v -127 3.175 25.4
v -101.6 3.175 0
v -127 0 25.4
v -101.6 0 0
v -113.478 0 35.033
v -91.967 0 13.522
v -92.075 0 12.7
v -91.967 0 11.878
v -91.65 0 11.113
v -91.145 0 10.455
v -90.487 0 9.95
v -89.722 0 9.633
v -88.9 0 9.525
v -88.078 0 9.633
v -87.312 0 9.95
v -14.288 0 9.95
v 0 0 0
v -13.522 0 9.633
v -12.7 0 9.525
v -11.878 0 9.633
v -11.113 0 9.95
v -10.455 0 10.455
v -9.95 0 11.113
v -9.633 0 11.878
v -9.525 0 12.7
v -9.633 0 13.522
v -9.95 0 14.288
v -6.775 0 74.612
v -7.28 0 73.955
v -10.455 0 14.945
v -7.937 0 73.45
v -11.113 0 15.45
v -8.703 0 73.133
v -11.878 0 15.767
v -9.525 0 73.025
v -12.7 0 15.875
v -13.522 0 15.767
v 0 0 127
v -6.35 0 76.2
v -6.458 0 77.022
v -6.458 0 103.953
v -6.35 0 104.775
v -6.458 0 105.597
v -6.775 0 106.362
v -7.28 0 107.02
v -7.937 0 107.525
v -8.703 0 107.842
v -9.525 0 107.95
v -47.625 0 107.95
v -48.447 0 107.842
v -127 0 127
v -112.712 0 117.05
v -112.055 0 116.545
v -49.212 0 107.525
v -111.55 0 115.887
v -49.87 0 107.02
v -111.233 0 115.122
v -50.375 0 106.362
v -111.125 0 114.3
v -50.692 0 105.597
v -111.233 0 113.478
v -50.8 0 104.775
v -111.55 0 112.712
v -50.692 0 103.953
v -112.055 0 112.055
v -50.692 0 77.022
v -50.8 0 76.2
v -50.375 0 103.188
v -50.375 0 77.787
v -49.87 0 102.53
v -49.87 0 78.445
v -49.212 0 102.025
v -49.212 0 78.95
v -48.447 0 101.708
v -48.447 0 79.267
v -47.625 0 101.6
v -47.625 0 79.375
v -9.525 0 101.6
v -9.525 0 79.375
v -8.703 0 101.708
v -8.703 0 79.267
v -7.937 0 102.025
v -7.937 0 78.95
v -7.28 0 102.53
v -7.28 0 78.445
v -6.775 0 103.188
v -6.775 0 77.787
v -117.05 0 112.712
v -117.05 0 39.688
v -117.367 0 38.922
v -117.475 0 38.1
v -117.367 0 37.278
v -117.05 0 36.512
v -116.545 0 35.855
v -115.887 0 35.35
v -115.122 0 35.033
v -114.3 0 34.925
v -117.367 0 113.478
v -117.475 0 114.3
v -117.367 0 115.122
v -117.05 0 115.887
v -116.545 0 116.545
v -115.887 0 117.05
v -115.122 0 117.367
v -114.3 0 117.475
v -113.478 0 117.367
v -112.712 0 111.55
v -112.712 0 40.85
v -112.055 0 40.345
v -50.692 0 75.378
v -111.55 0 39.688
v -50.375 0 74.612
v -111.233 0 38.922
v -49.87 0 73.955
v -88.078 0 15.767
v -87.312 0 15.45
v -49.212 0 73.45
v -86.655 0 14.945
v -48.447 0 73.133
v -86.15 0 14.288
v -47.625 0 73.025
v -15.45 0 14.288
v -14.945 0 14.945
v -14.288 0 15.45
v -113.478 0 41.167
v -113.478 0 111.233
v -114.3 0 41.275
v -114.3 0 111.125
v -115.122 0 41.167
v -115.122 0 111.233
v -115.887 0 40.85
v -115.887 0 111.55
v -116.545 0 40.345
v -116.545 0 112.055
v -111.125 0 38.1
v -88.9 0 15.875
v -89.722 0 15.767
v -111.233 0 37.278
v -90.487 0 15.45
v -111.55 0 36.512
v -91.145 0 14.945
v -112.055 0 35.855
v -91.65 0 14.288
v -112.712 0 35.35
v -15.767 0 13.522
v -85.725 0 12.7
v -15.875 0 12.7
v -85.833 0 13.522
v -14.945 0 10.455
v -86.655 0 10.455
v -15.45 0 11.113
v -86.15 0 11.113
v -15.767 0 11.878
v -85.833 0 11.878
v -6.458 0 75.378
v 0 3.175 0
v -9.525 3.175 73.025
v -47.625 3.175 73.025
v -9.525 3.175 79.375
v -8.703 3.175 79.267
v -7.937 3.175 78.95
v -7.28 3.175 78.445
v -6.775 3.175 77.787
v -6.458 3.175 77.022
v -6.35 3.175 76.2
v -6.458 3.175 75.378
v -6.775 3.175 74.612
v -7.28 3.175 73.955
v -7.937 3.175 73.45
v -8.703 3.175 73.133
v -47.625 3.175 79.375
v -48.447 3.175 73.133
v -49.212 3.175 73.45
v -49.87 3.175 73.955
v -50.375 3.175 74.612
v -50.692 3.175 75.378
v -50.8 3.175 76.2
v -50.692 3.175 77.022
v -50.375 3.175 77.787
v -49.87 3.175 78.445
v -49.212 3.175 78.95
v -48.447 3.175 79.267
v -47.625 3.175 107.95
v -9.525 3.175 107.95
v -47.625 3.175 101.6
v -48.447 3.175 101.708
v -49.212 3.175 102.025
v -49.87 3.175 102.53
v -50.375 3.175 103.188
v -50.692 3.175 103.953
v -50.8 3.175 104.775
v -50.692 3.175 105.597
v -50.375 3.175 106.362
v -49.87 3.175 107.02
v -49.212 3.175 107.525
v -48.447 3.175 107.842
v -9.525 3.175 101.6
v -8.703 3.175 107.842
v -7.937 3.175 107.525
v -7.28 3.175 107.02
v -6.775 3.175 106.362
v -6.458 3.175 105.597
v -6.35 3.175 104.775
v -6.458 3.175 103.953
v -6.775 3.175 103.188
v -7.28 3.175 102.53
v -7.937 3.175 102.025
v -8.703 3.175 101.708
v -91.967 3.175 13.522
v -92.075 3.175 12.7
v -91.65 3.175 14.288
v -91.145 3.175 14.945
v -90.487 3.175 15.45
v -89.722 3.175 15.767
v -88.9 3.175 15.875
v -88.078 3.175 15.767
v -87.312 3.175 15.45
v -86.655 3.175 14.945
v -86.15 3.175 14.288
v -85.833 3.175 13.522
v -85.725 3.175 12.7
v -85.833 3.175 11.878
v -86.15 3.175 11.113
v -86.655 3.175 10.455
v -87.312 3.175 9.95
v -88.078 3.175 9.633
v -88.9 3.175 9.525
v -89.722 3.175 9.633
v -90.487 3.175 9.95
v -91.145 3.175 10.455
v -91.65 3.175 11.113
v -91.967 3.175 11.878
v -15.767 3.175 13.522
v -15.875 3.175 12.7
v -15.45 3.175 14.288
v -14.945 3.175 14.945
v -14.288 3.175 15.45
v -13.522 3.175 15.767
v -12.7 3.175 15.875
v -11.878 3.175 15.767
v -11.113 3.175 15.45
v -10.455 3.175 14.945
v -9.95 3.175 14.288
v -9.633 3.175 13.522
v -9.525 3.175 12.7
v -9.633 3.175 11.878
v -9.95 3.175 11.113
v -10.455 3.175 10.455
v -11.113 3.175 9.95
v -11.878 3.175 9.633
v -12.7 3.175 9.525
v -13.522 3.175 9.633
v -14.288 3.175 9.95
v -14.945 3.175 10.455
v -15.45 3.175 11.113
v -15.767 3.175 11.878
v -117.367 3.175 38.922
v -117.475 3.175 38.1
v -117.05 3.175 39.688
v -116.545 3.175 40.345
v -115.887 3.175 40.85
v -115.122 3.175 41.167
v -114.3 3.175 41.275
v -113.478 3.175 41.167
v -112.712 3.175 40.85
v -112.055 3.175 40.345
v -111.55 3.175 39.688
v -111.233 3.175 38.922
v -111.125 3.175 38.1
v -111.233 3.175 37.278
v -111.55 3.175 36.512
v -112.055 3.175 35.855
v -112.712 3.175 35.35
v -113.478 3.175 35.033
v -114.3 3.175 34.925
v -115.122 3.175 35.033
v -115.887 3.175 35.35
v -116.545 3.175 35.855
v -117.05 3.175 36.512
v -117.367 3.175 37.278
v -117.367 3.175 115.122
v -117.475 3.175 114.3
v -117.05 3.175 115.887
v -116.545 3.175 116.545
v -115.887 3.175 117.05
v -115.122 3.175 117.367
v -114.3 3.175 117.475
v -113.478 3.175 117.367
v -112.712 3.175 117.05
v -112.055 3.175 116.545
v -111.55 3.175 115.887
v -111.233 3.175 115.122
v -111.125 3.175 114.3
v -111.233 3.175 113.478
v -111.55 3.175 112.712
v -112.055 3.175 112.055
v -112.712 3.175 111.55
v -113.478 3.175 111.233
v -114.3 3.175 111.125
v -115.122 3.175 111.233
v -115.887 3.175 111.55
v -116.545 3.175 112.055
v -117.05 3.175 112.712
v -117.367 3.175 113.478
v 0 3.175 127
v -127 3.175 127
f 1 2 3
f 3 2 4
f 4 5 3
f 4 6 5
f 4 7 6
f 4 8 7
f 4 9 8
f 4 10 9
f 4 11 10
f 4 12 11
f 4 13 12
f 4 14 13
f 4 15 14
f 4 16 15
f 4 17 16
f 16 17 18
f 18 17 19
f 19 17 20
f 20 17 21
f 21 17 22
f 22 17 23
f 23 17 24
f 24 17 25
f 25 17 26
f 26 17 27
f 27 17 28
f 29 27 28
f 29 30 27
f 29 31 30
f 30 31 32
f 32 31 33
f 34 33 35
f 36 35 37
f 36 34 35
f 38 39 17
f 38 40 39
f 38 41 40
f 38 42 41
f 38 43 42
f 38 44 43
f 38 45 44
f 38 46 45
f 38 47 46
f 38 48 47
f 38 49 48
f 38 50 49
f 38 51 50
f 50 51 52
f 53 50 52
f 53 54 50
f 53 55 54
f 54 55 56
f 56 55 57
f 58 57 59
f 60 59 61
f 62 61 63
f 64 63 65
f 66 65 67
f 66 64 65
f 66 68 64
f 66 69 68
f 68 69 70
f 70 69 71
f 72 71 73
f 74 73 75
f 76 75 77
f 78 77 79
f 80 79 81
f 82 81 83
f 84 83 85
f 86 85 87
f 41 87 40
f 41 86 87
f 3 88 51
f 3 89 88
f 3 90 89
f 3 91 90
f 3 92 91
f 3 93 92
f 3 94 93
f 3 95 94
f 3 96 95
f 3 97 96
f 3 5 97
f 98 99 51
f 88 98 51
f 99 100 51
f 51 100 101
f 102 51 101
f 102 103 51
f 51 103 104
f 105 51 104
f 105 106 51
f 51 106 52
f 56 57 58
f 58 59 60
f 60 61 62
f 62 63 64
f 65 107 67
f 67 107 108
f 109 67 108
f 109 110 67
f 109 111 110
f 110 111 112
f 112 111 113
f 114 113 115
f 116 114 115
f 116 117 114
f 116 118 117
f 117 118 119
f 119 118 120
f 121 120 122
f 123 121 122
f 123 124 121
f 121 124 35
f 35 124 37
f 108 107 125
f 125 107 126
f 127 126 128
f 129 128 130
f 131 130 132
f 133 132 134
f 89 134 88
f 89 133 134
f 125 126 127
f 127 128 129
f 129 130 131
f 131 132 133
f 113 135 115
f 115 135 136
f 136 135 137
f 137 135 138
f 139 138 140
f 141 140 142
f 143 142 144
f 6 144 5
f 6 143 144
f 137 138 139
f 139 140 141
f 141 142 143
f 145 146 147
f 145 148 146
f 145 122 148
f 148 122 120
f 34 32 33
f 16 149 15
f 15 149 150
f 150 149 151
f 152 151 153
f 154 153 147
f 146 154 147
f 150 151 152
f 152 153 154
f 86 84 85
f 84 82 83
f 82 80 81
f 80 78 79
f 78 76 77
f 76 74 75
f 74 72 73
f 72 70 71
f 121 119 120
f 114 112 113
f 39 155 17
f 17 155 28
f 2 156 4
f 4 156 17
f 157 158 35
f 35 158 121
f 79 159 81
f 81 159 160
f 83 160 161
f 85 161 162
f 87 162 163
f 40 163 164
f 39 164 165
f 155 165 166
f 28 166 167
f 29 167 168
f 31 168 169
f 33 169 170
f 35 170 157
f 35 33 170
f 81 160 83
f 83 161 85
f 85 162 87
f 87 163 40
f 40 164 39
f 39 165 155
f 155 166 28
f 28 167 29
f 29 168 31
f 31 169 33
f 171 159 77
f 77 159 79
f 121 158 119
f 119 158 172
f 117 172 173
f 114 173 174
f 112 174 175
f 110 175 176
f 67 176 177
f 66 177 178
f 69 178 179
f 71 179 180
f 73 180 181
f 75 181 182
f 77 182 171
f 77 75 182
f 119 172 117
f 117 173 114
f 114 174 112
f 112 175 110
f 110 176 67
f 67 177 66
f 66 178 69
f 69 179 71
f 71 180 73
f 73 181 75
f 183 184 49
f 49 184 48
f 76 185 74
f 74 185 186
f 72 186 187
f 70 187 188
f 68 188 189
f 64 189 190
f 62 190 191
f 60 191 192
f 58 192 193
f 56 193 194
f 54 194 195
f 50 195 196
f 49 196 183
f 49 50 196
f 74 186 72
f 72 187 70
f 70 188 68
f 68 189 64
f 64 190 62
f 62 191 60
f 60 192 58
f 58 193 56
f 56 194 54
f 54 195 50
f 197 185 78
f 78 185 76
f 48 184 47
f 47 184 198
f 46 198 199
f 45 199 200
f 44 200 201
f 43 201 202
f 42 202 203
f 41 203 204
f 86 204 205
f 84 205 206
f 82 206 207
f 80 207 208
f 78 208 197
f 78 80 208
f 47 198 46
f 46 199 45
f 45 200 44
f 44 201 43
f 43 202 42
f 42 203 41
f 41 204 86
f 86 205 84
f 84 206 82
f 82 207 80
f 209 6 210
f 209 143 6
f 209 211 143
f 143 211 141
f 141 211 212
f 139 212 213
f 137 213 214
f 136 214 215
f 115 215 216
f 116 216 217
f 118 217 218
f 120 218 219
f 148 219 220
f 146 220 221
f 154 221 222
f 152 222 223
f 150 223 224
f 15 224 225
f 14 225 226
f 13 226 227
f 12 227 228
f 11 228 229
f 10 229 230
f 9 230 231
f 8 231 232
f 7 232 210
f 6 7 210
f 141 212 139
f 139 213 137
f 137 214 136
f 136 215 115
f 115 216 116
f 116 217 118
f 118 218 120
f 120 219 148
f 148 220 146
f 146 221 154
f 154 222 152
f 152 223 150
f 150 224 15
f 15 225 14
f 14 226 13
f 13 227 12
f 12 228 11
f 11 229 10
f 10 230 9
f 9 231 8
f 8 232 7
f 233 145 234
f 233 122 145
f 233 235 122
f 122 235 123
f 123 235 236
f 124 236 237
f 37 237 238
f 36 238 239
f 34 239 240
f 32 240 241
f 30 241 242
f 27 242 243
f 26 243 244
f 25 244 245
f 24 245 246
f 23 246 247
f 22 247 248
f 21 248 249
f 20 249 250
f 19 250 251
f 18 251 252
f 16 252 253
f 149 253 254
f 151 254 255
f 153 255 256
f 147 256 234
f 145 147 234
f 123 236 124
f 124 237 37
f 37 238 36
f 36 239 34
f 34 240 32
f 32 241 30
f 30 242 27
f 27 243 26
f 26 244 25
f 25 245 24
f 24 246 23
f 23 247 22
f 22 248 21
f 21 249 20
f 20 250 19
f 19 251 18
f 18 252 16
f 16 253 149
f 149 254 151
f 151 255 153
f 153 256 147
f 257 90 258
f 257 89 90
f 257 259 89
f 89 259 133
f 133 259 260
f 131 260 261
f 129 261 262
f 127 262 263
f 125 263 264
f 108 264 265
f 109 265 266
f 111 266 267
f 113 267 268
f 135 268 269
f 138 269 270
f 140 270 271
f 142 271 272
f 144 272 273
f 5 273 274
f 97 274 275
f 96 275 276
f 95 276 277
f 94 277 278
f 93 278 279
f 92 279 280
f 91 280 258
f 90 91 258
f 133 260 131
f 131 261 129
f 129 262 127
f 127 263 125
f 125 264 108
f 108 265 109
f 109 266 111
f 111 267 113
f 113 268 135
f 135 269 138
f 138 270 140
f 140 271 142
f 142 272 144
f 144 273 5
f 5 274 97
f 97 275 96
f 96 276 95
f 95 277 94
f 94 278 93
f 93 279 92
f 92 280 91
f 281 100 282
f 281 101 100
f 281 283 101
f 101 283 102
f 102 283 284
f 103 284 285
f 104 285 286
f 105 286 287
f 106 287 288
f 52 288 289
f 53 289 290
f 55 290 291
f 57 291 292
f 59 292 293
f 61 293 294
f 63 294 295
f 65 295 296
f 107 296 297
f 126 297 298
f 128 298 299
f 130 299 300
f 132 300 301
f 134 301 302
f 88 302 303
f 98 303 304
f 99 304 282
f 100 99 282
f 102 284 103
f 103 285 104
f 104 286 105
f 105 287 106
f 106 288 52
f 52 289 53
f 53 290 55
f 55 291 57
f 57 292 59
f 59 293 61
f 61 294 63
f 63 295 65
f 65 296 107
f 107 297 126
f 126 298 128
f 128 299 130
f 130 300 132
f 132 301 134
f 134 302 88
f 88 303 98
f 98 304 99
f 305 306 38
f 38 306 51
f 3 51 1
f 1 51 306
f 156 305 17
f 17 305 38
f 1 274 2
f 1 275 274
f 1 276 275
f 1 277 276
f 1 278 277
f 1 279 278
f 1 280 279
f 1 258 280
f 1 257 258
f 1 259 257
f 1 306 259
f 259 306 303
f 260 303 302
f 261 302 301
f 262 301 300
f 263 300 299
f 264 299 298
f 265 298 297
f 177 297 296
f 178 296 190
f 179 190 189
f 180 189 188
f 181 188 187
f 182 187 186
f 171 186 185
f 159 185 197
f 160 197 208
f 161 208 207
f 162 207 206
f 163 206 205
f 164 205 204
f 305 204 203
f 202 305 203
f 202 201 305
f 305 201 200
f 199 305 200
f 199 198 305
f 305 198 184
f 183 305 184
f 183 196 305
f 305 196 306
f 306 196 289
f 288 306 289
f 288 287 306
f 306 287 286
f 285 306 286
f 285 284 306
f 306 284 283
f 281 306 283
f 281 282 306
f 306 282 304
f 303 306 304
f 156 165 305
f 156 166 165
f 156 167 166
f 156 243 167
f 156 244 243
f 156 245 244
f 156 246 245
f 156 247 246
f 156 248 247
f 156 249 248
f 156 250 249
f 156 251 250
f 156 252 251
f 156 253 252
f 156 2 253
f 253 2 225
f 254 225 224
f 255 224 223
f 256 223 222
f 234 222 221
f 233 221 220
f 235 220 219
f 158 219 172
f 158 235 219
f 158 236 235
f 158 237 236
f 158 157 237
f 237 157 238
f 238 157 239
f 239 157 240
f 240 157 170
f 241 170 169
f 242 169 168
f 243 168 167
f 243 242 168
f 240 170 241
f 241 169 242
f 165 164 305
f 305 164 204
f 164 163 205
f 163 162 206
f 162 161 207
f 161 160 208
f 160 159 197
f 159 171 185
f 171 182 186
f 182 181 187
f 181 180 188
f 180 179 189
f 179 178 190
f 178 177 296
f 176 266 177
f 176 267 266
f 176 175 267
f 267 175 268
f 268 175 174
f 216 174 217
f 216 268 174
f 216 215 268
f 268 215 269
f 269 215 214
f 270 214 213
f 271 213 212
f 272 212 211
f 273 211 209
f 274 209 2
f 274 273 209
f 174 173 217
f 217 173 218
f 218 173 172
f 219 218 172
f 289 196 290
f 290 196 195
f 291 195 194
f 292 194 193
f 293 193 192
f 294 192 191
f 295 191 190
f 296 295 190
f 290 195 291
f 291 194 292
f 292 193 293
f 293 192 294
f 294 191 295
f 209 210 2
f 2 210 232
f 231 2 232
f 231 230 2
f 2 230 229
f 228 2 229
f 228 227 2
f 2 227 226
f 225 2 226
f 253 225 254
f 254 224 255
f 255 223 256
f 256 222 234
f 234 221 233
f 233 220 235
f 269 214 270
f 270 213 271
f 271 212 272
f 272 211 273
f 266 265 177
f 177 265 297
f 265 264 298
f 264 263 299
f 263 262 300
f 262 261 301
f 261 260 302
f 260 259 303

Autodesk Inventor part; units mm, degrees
ref_plane "YZ Plane" through (0, 0, 0) normal (1, 0, 0) x (0, 1, 0)
ref_plane "XZ Plane" through (0, 0, 0) normal (0, 1, 0) x (-1, 0, 0)
ref_plane "XY Plane" through (0, 0, 0) normal (0, 0, 1) x (1, 0, 0)
sketch "Sketch2" plane through (0, 0, 0) normal (0, 1, 0) x (-1, 0, 0)
  line L0 (0, 0) -> (0, 127)
  line L1 (0, 127) -> (127, 127)
  line L2 (127, 127) -> (127, 0)
  line L3 (127, 0) -> (0, 0)
  arc A0 (9.525, 107.95) -> (9.525, 101.6) centre (9.525, 104.775) ccw
  arc A1 (47.625, 101.6) -> (47.625, 107.95) centre (47.625, 104.775) ccw
  arc A2 (47.625, 73.025) -> (47.625, 79.375) centre (47.625, 76.2) ccw
  arc A3 (9.525, 79.375) -> (9.525, 73.025) centre (9.525, 76.2) ccw
  line L4 (9.525, 79.375) -> (47.625, 79.375)
  line L5 (47.625, 73.025) -> (9.525, 73.025)
  line L6 (9.525, 107.95) -> (47.625, 107.95)
  line L7 (47.625, 101.6) -> (9.525, 101.6)
  line L8 (9.525, 104.775) -> (9.525, 76.2) construction
  circle A4 centre (114.3, 114.3) radius 3.175
  circle A5 centre (114.3, 38.1) radius 3.175
  circle A6 centre (12.7, 12.7) radius 3.175
  circle A7 centre (88.9, 12.7) radius 3.175
  line L9 (114.3, 114.3) -> (114.3, 38.1) construction
  line L10 (12.7, 12.7) -> (88.9, 12.7) construction
  dimension "d7" = 127
  dimension "d18" = 38.1
  dimension "d19" = 79.375
  dimension "d22" = 12.7
  dimension "d23" = 76.2
  dimension "d24" = 76.2
  dimension "d25" = 6.35
  dimension "d28" = 12.7
  dimension "d29" = 12.7
  dimension "d30" = 38.1
  dimension "d31" = 127
  dimension "d32" = 9.525
  dimension "d36" = 12.7
  dimension "d39" = 22.225
  dimension "d40" = 28.575
  dimension "d41" = 76.2
extrude "Extrusion3" add sketch "Sketch2" along normal blind 3.175
chamfer "Chamfer1" distance 25.4 angle 45 1 edges at (-127, 1.5875, 0)
properties part number "GearboxMountPlate" material "Aluminum-6061"
